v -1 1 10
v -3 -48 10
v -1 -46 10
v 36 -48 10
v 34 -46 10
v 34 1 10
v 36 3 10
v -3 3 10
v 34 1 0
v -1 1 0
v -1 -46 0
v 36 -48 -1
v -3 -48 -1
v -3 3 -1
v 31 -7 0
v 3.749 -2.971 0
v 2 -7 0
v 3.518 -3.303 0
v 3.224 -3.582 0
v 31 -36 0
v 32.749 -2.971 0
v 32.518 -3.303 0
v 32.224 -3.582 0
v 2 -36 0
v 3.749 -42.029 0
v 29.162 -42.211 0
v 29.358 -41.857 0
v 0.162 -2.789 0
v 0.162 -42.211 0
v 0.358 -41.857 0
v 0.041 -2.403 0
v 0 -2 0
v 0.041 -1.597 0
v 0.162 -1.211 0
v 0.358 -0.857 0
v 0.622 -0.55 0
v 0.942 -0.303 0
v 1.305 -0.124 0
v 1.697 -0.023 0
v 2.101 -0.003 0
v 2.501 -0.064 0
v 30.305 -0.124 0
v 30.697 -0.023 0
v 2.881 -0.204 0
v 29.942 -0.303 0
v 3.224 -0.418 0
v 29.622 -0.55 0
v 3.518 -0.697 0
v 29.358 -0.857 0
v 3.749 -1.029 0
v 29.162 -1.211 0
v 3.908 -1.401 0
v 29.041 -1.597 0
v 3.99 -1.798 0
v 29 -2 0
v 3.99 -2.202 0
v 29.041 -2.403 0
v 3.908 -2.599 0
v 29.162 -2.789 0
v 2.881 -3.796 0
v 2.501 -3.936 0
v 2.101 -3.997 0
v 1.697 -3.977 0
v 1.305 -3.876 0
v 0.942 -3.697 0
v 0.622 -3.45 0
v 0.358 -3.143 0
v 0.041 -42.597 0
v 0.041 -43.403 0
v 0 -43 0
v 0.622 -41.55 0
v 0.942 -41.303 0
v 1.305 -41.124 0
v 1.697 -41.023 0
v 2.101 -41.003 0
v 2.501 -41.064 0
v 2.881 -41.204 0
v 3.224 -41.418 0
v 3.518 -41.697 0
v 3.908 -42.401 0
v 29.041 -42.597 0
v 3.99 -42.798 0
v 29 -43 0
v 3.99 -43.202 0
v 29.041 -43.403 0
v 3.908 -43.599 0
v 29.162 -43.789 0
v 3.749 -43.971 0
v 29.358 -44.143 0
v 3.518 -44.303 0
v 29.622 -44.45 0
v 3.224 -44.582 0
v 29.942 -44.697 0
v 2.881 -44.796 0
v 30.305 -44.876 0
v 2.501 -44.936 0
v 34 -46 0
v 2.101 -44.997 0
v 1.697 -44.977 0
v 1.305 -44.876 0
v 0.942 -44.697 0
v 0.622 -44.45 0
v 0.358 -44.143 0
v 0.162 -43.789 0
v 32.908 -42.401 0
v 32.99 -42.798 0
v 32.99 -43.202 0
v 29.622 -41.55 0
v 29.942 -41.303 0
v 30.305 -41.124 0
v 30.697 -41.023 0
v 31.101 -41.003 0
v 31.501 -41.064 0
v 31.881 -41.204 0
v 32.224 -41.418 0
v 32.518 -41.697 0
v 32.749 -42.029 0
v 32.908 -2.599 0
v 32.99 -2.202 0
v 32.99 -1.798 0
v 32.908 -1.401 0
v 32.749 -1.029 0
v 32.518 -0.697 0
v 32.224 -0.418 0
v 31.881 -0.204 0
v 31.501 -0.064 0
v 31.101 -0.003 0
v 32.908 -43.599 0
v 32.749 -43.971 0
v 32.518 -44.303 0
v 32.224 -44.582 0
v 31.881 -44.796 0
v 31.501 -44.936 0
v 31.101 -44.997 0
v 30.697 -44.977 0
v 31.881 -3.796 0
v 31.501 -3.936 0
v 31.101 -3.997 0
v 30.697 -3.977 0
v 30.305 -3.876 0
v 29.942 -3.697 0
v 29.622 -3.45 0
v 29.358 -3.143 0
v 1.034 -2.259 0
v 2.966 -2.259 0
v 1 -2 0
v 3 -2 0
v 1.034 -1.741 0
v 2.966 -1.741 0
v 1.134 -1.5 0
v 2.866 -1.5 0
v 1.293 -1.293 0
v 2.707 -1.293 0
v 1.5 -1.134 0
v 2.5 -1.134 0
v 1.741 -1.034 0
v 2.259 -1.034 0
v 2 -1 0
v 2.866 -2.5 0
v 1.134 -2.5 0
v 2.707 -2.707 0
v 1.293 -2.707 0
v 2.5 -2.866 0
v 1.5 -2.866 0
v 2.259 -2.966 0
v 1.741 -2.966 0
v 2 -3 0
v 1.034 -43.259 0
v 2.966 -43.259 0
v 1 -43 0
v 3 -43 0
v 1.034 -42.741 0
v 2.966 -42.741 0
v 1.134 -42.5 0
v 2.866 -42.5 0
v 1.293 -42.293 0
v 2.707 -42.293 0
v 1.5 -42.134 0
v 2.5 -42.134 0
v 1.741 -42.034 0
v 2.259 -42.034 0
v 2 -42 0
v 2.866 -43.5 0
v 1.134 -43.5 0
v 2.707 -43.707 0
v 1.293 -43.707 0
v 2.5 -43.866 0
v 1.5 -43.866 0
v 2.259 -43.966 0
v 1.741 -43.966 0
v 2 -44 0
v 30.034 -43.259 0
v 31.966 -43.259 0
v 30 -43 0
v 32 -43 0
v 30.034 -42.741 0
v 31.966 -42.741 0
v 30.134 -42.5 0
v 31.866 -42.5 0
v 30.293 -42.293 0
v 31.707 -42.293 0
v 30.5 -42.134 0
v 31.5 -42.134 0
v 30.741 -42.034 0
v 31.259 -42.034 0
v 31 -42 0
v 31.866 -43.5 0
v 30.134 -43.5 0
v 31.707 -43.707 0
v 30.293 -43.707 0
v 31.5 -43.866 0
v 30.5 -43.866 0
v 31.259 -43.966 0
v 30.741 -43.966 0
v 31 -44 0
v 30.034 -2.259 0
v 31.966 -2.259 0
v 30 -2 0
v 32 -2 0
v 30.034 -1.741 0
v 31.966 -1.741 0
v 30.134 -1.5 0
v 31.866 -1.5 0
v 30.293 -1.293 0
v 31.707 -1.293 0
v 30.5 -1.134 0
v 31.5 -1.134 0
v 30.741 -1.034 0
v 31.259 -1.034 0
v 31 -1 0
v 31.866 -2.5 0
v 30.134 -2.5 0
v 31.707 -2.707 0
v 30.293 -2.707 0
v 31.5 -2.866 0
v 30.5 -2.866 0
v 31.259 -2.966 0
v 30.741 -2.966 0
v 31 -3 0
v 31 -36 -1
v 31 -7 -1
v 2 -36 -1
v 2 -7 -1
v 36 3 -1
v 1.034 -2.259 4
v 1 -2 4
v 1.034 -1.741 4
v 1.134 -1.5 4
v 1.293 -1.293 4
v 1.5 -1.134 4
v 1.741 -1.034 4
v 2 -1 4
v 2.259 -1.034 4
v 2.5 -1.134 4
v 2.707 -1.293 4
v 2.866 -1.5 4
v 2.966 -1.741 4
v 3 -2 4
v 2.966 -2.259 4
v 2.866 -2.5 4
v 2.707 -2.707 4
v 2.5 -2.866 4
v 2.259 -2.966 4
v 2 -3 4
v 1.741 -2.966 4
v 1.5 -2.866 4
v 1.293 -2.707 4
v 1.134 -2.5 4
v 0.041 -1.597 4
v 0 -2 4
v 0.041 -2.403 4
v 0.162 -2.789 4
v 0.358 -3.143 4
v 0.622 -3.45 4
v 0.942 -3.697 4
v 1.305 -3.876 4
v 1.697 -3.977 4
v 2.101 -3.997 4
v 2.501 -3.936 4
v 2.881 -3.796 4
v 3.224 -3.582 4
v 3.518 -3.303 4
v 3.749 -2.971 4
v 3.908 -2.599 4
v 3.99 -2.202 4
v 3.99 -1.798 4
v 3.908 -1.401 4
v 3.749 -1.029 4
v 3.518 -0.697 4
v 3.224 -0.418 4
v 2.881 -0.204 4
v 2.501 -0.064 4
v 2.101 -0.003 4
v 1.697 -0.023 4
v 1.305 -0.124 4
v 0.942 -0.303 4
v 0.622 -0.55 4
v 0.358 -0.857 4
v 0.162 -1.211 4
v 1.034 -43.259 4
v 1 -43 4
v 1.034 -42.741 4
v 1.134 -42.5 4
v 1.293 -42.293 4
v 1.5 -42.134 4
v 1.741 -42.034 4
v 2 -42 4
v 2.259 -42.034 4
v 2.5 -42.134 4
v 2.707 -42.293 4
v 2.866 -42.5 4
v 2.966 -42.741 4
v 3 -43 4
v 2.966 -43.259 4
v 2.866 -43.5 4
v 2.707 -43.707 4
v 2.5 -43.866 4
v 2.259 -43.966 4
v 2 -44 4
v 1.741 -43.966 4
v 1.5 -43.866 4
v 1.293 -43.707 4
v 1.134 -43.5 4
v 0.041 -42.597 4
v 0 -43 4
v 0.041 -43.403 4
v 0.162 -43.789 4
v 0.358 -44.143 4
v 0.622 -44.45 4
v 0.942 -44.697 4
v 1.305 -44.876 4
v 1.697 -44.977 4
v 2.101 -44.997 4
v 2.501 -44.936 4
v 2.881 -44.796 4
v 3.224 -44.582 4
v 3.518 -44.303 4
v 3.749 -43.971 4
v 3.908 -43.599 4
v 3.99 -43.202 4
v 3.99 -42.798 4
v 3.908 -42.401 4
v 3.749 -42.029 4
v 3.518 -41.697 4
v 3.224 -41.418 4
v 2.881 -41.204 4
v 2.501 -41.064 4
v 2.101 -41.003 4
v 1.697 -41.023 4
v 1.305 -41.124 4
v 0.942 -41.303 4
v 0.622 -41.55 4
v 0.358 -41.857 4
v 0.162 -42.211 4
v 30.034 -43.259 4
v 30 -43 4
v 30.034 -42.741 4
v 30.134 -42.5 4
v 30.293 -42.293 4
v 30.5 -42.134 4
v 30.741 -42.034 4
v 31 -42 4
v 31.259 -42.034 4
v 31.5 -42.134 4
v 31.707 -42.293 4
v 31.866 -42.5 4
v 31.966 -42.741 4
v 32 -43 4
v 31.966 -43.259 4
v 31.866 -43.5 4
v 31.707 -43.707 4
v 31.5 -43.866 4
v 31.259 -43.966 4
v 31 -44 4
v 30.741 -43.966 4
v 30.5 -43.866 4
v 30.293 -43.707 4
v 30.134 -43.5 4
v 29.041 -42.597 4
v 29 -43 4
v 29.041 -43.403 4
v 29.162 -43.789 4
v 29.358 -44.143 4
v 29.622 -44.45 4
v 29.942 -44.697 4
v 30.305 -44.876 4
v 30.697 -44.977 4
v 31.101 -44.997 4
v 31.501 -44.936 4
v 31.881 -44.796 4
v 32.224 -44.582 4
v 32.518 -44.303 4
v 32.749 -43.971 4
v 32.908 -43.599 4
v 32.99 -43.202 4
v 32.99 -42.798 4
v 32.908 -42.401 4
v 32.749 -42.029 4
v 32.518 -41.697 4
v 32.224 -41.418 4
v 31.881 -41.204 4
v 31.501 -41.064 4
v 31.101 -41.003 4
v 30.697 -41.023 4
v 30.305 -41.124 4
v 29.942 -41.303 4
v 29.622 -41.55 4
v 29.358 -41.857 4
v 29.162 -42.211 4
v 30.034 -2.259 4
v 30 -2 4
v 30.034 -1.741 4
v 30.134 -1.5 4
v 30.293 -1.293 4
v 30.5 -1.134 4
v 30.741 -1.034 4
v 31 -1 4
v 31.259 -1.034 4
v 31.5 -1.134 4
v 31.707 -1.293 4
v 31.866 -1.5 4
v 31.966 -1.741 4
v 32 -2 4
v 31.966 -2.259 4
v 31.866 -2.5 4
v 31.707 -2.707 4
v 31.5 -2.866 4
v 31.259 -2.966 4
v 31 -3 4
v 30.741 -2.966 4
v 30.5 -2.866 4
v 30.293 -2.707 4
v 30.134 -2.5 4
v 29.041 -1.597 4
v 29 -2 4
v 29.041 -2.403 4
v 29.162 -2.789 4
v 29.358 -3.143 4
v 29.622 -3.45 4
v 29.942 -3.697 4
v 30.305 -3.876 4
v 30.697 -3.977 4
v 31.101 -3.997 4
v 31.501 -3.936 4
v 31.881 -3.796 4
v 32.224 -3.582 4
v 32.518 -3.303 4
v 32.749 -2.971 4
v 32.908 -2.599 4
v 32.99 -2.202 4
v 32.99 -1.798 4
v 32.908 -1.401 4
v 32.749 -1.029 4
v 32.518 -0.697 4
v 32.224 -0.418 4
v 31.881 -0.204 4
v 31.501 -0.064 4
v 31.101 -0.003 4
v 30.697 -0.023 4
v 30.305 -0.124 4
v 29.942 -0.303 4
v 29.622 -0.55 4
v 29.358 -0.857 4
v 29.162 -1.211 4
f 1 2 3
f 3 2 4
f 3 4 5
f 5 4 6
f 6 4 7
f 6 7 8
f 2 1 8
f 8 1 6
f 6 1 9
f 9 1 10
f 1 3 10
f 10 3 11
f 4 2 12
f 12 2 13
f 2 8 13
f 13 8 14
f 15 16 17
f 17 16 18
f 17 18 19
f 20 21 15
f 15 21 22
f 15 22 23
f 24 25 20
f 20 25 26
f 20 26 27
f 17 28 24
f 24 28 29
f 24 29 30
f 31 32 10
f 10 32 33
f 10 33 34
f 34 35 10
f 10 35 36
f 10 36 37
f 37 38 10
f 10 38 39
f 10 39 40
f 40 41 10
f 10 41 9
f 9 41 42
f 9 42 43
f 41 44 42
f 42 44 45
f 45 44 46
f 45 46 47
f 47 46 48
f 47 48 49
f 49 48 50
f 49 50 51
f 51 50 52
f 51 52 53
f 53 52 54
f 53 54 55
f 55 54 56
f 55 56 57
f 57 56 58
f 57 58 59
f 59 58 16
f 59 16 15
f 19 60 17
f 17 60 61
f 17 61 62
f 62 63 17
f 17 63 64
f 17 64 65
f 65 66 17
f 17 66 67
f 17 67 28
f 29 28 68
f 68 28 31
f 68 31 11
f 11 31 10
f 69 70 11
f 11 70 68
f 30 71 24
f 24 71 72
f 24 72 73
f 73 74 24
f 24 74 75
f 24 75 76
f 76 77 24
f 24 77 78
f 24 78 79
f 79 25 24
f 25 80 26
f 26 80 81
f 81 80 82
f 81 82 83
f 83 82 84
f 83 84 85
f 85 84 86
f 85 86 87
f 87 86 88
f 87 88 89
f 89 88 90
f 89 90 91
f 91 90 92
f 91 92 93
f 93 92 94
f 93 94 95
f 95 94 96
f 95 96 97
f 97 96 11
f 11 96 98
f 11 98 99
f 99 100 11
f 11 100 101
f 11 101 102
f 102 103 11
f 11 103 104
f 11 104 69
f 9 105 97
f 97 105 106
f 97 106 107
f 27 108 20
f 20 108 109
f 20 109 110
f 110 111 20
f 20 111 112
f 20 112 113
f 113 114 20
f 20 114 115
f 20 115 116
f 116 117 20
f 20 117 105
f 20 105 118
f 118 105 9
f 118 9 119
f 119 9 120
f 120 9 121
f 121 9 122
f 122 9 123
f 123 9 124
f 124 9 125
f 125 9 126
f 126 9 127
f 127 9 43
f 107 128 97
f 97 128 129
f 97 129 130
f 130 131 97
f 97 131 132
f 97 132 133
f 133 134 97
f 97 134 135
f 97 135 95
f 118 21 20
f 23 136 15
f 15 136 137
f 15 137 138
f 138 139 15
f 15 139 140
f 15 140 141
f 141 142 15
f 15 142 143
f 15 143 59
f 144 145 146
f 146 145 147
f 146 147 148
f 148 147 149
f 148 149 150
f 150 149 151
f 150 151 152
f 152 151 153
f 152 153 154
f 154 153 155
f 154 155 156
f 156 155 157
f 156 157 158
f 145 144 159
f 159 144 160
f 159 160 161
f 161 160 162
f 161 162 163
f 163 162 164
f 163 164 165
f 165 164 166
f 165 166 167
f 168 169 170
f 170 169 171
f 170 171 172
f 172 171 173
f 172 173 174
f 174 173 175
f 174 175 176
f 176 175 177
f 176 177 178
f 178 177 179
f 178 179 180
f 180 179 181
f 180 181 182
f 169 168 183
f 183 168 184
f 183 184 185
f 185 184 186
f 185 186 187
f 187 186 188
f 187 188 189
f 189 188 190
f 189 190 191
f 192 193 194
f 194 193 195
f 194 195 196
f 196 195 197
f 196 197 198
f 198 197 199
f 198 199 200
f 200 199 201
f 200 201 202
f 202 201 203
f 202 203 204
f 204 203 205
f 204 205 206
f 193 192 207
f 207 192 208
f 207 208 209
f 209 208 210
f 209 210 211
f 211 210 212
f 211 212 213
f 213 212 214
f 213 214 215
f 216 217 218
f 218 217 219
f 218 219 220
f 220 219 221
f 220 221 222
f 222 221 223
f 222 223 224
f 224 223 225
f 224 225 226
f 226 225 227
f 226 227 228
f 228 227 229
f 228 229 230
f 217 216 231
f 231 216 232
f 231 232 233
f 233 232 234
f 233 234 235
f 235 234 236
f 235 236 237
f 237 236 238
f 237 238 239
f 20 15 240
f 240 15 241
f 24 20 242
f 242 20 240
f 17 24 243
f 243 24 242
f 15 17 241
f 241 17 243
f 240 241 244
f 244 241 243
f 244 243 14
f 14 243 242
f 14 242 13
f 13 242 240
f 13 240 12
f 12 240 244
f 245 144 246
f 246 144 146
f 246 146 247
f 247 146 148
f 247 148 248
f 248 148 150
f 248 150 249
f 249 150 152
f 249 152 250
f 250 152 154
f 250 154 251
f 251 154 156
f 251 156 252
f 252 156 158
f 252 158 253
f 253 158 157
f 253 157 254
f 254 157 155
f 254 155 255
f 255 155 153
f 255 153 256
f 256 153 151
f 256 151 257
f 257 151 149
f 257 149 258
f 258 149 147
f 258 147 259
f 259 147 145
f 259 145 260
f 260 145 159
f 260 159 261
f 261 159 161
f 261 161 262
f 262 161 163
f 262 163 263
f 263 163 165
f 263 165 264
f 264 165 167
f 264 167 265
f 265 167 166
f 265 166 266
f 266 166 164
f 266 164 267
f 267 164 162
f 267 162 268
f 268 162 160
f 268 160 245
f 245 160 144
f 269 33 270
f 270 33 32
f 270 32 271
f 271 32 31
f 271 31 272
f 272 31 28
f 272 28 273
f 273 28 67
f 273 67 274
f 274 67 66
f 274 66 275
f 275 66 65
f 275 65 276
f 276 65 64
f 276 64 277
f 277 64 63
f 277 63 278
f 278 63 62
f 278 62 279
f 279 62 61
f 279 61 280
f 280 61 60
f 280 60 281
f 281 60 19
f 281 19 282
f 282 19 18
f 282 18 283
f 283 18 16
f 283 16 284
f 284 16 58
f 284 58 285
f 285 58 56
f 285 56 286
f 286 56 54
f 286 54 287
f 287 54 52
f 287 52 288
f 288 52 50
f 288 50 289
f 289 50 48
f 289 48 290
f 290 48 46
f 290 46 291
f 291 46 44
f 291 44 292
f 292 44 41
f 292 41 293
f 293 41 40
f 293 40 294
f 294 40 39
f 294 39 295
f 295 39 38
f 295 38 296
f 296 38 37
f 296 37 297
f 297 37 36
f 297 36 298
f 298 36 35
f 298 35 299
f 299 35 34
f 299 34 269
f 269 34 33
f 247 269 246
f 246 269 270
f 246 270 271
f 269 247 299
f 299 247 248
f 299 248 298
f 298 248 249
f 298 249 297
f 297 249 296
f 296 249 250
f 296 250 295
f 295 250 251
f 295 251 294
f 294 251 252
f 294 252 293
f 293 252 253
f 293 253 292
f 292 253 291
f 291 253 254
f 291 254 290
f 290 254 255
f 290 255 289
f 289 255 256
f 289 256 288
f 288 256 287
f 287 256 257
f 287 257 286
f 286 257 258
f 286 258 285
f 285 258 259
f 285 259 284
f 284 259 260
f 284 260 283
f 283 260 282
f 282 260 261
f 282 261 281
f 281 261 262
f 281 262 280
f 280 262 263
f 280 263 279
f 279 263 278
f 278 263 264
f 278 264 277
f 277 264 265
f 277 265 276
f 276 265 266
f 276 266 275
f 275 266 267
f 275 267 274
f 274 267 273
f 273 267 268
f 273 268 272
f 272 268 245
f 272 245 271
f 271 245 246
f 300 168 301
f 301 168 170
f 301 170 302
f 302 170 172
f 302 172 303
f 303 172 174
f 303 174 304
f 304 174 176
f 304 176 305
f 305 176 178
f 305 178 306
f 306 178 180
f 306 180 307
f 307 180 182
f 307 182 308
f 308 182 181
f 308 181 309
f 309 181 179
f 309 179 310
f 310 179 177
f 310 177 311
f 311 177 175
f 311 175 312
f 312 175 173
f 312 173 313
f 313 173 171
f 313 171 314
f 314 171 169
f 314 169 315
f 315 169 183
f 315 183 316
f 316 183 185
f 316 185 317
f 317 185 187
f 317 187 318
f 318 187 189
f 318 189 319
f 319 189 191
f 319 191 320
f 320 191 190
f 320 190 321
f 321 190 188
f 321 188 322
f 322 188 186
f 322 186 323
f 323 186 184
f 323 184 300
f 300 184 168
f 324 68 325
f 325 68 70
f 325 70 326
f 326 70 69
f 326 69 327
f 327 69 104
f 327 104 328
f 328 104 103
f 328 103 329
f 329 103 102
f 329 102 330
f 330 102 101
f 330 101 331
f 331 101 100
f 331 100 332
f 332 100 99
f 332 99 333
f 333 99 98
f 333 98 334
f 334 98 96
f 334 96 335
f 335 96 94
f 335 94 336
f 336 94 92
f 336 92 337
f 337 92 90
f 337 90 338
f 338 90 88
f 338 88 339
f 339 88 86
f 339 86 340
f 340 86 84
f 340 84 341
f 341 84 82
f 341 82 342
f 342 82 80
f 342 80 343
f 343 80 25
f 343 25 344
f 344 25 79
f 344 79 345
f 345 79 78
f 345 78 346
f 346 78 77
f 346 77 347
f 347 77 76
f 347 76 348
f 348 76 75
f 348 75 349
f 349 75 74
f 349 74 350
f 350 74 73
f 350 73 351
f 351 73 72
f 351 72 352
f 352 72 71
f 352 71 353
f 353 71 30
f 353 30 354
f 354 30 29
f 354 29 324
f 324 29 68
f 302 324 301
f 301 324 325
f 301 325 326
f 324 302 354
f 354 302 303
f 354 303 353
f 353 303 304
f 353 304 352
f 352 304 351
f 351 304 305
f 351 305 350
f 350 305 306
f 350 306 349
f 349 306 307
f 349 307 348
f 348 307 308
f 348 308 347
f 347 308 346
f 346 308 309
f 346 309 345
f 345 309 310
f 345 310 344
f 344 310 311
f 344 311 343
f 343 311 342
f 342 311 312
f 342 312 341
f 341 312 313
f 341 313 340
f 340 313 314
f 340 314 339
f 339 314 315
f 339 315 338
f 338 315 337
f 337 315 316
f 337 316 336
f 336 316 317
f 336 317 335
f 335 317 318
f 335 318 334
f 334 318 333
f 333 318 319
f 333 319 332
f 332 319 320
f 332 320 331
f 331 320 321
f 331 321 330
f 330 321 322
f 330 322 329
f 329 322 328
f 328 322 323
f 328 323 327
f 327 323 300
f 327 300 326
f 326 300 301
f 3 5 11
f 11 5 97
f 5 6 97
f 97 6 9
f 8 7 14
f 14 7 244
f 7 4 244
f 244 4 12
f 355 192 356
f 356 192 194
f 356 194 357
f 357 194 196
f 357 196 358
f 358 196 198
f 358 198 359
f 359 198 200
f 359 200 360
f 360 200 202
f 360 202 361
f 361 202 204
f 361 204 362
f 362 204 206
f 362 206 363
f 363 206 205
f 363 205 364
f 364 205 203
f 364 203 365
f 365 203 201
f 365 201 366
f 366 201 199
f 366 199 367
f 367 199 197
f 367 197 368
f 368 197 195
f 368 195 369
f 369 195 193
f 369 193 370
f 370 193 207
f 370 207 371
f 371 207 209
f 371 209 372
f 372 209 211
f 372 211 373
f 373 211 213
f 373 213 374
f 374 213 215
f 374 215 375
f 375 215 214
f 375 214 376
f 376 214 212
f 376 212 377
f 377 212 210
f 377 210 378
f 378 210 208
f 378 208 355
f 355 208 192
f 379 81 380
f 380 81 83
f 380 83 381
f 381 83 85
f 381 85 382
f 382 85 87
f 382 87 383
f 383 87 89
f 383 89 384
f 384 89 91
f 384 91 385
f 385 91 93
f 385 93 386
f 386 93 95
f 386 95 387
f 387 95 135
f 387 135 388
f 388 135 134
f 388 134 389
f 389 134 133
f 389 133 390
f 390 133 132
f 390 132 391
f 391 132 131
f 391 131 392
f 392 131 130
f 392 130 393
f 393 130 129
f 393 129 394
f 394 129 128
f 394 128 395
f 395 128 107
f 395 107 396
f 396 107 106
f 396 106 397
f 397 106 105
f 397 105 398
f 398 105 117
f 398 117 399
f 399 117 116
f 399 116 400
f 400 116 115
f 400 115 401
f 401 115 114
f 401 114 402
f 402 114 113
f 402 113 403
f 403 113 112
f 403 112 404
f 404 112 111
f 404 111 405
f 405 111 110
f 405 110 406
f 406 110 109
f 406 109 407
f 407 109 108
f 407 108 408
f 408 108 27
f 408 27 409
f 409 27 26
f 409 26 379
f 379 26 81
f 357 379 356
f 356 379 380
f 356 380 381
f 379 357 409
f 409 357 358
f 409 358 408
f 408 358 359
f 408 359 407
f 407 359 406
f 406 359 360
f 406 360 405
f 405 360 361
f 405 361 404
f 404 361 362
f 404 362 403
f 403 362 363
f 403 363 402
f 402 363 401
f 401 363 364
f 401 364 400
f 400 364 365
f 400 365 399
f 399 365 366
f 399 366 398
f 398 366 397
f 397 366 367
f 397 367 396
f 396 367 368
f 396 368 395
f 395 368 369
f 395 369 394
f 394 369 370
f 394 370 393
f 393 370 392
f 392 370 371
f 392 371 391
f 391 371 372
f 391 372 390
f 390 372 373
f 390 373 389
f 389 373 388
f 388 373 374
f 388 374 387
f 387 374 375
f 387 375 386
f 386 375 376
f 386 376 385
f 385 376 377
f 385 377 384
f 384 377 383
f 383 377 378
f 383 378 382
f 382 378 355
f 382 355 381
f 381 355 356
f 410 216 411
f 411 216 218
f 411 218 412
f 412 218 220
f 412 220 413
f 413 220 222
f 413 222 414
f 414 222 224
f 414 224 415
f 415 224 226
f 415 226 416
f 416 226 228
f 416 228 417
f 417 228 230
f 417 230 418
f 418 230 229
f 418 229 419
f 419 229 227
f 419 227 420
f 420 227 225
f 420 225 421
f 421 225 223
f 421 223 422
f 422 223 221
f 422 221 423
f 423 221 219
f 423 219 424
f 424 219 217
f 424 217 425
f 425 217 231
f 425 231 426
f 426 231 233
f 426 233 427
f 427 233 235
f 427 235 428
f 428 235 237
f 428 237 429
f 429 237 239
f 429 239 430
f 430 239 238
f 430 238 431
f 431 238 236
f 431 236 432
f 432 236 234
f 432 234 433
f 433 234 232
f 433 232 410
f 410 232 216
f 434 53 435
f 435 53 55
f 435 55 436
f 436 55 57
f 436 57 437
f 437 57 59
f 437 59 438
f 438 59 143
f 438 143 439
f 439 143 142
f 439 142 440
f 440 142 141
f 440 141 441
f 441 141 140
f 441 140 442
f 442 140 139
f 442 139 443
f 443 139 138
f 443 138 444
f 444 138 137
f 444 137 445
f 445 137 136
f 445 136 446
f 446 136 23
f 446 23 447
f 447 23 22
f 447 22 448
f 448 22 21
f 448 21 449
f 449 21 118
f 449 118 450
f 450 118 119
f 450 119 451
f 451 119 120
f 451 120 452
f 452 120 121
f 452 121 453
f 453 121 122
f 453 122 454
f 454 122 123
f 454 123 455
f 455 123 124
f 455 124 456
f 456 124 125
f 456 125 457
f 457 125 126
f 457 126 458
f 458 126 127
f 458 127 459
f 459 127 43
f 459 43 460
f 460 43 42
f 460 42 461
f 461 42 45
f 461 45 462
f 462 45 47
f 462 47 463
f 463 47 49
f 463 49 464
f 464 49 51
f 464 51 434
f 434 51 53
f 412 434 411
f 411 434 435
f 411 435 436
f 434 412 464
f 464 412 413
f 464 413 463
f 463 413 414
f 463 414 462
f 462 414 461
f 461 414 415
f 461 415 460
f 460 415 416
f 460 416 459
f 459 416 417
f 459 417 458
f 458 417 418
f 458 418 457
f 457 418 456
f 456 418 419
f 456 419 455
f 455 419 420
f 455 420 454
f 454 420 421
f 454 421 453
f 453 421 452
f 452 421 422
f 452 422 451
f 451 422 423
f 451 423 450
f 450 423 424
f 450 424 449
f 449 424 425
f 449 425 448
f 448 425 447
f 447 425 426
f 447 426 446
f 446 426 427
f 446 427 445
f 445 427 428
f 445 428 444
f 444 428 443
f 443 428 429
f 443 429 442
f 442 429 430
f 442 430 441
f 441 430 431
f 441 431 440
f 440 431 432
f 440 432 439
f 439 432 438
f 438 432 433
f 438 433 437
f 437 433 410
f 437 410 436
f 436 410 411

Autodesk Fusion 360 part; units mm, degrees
sketch "Sketch1" plane through (0, 0, 0) normal (0, 0, 1) x (1, 0, 0)
  line L0 (0, 0) -> (33, 0)
  line L1 (33, 0) -> (33, -45)
  line L2 (33, -45) -> (0, -45)
  line L3 (0, -45) -> (0, 0)
  circle A0 centre (31, -2) radius 1
  circle A1 centre (2, -2) radius 1
  circle A2 centre (2, -43) radius 1
  circle A3 centre (31, -43) radius 1
  line L4 (34, 1) -> (34, -46)
  line L5 (34, -46) -> (-1, -46)
  line L6 (-1, -46) -> (-1, 1)
  line L7 (-1, 1) -> (34, 1)
  line L8 (36, 3) -> (36, -48)
  line L9 (36, -48) -> (-3, -48)
  line L10 (-3, -48) -> (-3, 3)
  line L11 (-3, 3) -> (36, 3)
  circle A4 centre (31, -2) radius 2
  circle A5 centre (31, -43) radius 2
  circle A6 centre (2, -43) radius 2
  circle A7 centre (2, -2) radius 2
  line L12 (31, -36) -> (2, -36)
  line L13 (2, -36) -> (2, -7)
  line L14 (2, -7) -> (31, -7)
  line L15 (31, -7) -> (31, -36)
extrude "Extrude1" add sketch "Sketch1" along normal blind 20 contours L8 L9 L10 L11 makes body 1
extrude "Extrude2" add sketch "Sketch1" along normal blind 4 separate body contours A7 | A4 | A6 | A5 makes body 2 at (32.9975, -43.0997, 1.3333) makes body 3 at (0.6766, -41.5004, 2.6667) makes body 4 at (32.9975, -2.0997, 1.3333) makes body 5 at (3.9975, -2.0997, 1.3333)
extrude "Extrude3" add sketch "Sketch1" against normal blind 1 contours L0 L3 A7 | L0 L1 L2 L3 A4 A5 A6 A7 | A7 | L0 L1 A4 | A4 | L2 L3 A6 | A6 | A5 | L1 L2 A5 | A0 | A1 | A2 | A3 | L4 L5 L6 L7 | L8 L9 L10 L11 bodies 1 2 3 4 5
extrude "Extrude4" cut 1 faces at (35.3333, -30.3333, 20) along direction (0, 0, -1) blind 10 on bodies 1 bodies 1
